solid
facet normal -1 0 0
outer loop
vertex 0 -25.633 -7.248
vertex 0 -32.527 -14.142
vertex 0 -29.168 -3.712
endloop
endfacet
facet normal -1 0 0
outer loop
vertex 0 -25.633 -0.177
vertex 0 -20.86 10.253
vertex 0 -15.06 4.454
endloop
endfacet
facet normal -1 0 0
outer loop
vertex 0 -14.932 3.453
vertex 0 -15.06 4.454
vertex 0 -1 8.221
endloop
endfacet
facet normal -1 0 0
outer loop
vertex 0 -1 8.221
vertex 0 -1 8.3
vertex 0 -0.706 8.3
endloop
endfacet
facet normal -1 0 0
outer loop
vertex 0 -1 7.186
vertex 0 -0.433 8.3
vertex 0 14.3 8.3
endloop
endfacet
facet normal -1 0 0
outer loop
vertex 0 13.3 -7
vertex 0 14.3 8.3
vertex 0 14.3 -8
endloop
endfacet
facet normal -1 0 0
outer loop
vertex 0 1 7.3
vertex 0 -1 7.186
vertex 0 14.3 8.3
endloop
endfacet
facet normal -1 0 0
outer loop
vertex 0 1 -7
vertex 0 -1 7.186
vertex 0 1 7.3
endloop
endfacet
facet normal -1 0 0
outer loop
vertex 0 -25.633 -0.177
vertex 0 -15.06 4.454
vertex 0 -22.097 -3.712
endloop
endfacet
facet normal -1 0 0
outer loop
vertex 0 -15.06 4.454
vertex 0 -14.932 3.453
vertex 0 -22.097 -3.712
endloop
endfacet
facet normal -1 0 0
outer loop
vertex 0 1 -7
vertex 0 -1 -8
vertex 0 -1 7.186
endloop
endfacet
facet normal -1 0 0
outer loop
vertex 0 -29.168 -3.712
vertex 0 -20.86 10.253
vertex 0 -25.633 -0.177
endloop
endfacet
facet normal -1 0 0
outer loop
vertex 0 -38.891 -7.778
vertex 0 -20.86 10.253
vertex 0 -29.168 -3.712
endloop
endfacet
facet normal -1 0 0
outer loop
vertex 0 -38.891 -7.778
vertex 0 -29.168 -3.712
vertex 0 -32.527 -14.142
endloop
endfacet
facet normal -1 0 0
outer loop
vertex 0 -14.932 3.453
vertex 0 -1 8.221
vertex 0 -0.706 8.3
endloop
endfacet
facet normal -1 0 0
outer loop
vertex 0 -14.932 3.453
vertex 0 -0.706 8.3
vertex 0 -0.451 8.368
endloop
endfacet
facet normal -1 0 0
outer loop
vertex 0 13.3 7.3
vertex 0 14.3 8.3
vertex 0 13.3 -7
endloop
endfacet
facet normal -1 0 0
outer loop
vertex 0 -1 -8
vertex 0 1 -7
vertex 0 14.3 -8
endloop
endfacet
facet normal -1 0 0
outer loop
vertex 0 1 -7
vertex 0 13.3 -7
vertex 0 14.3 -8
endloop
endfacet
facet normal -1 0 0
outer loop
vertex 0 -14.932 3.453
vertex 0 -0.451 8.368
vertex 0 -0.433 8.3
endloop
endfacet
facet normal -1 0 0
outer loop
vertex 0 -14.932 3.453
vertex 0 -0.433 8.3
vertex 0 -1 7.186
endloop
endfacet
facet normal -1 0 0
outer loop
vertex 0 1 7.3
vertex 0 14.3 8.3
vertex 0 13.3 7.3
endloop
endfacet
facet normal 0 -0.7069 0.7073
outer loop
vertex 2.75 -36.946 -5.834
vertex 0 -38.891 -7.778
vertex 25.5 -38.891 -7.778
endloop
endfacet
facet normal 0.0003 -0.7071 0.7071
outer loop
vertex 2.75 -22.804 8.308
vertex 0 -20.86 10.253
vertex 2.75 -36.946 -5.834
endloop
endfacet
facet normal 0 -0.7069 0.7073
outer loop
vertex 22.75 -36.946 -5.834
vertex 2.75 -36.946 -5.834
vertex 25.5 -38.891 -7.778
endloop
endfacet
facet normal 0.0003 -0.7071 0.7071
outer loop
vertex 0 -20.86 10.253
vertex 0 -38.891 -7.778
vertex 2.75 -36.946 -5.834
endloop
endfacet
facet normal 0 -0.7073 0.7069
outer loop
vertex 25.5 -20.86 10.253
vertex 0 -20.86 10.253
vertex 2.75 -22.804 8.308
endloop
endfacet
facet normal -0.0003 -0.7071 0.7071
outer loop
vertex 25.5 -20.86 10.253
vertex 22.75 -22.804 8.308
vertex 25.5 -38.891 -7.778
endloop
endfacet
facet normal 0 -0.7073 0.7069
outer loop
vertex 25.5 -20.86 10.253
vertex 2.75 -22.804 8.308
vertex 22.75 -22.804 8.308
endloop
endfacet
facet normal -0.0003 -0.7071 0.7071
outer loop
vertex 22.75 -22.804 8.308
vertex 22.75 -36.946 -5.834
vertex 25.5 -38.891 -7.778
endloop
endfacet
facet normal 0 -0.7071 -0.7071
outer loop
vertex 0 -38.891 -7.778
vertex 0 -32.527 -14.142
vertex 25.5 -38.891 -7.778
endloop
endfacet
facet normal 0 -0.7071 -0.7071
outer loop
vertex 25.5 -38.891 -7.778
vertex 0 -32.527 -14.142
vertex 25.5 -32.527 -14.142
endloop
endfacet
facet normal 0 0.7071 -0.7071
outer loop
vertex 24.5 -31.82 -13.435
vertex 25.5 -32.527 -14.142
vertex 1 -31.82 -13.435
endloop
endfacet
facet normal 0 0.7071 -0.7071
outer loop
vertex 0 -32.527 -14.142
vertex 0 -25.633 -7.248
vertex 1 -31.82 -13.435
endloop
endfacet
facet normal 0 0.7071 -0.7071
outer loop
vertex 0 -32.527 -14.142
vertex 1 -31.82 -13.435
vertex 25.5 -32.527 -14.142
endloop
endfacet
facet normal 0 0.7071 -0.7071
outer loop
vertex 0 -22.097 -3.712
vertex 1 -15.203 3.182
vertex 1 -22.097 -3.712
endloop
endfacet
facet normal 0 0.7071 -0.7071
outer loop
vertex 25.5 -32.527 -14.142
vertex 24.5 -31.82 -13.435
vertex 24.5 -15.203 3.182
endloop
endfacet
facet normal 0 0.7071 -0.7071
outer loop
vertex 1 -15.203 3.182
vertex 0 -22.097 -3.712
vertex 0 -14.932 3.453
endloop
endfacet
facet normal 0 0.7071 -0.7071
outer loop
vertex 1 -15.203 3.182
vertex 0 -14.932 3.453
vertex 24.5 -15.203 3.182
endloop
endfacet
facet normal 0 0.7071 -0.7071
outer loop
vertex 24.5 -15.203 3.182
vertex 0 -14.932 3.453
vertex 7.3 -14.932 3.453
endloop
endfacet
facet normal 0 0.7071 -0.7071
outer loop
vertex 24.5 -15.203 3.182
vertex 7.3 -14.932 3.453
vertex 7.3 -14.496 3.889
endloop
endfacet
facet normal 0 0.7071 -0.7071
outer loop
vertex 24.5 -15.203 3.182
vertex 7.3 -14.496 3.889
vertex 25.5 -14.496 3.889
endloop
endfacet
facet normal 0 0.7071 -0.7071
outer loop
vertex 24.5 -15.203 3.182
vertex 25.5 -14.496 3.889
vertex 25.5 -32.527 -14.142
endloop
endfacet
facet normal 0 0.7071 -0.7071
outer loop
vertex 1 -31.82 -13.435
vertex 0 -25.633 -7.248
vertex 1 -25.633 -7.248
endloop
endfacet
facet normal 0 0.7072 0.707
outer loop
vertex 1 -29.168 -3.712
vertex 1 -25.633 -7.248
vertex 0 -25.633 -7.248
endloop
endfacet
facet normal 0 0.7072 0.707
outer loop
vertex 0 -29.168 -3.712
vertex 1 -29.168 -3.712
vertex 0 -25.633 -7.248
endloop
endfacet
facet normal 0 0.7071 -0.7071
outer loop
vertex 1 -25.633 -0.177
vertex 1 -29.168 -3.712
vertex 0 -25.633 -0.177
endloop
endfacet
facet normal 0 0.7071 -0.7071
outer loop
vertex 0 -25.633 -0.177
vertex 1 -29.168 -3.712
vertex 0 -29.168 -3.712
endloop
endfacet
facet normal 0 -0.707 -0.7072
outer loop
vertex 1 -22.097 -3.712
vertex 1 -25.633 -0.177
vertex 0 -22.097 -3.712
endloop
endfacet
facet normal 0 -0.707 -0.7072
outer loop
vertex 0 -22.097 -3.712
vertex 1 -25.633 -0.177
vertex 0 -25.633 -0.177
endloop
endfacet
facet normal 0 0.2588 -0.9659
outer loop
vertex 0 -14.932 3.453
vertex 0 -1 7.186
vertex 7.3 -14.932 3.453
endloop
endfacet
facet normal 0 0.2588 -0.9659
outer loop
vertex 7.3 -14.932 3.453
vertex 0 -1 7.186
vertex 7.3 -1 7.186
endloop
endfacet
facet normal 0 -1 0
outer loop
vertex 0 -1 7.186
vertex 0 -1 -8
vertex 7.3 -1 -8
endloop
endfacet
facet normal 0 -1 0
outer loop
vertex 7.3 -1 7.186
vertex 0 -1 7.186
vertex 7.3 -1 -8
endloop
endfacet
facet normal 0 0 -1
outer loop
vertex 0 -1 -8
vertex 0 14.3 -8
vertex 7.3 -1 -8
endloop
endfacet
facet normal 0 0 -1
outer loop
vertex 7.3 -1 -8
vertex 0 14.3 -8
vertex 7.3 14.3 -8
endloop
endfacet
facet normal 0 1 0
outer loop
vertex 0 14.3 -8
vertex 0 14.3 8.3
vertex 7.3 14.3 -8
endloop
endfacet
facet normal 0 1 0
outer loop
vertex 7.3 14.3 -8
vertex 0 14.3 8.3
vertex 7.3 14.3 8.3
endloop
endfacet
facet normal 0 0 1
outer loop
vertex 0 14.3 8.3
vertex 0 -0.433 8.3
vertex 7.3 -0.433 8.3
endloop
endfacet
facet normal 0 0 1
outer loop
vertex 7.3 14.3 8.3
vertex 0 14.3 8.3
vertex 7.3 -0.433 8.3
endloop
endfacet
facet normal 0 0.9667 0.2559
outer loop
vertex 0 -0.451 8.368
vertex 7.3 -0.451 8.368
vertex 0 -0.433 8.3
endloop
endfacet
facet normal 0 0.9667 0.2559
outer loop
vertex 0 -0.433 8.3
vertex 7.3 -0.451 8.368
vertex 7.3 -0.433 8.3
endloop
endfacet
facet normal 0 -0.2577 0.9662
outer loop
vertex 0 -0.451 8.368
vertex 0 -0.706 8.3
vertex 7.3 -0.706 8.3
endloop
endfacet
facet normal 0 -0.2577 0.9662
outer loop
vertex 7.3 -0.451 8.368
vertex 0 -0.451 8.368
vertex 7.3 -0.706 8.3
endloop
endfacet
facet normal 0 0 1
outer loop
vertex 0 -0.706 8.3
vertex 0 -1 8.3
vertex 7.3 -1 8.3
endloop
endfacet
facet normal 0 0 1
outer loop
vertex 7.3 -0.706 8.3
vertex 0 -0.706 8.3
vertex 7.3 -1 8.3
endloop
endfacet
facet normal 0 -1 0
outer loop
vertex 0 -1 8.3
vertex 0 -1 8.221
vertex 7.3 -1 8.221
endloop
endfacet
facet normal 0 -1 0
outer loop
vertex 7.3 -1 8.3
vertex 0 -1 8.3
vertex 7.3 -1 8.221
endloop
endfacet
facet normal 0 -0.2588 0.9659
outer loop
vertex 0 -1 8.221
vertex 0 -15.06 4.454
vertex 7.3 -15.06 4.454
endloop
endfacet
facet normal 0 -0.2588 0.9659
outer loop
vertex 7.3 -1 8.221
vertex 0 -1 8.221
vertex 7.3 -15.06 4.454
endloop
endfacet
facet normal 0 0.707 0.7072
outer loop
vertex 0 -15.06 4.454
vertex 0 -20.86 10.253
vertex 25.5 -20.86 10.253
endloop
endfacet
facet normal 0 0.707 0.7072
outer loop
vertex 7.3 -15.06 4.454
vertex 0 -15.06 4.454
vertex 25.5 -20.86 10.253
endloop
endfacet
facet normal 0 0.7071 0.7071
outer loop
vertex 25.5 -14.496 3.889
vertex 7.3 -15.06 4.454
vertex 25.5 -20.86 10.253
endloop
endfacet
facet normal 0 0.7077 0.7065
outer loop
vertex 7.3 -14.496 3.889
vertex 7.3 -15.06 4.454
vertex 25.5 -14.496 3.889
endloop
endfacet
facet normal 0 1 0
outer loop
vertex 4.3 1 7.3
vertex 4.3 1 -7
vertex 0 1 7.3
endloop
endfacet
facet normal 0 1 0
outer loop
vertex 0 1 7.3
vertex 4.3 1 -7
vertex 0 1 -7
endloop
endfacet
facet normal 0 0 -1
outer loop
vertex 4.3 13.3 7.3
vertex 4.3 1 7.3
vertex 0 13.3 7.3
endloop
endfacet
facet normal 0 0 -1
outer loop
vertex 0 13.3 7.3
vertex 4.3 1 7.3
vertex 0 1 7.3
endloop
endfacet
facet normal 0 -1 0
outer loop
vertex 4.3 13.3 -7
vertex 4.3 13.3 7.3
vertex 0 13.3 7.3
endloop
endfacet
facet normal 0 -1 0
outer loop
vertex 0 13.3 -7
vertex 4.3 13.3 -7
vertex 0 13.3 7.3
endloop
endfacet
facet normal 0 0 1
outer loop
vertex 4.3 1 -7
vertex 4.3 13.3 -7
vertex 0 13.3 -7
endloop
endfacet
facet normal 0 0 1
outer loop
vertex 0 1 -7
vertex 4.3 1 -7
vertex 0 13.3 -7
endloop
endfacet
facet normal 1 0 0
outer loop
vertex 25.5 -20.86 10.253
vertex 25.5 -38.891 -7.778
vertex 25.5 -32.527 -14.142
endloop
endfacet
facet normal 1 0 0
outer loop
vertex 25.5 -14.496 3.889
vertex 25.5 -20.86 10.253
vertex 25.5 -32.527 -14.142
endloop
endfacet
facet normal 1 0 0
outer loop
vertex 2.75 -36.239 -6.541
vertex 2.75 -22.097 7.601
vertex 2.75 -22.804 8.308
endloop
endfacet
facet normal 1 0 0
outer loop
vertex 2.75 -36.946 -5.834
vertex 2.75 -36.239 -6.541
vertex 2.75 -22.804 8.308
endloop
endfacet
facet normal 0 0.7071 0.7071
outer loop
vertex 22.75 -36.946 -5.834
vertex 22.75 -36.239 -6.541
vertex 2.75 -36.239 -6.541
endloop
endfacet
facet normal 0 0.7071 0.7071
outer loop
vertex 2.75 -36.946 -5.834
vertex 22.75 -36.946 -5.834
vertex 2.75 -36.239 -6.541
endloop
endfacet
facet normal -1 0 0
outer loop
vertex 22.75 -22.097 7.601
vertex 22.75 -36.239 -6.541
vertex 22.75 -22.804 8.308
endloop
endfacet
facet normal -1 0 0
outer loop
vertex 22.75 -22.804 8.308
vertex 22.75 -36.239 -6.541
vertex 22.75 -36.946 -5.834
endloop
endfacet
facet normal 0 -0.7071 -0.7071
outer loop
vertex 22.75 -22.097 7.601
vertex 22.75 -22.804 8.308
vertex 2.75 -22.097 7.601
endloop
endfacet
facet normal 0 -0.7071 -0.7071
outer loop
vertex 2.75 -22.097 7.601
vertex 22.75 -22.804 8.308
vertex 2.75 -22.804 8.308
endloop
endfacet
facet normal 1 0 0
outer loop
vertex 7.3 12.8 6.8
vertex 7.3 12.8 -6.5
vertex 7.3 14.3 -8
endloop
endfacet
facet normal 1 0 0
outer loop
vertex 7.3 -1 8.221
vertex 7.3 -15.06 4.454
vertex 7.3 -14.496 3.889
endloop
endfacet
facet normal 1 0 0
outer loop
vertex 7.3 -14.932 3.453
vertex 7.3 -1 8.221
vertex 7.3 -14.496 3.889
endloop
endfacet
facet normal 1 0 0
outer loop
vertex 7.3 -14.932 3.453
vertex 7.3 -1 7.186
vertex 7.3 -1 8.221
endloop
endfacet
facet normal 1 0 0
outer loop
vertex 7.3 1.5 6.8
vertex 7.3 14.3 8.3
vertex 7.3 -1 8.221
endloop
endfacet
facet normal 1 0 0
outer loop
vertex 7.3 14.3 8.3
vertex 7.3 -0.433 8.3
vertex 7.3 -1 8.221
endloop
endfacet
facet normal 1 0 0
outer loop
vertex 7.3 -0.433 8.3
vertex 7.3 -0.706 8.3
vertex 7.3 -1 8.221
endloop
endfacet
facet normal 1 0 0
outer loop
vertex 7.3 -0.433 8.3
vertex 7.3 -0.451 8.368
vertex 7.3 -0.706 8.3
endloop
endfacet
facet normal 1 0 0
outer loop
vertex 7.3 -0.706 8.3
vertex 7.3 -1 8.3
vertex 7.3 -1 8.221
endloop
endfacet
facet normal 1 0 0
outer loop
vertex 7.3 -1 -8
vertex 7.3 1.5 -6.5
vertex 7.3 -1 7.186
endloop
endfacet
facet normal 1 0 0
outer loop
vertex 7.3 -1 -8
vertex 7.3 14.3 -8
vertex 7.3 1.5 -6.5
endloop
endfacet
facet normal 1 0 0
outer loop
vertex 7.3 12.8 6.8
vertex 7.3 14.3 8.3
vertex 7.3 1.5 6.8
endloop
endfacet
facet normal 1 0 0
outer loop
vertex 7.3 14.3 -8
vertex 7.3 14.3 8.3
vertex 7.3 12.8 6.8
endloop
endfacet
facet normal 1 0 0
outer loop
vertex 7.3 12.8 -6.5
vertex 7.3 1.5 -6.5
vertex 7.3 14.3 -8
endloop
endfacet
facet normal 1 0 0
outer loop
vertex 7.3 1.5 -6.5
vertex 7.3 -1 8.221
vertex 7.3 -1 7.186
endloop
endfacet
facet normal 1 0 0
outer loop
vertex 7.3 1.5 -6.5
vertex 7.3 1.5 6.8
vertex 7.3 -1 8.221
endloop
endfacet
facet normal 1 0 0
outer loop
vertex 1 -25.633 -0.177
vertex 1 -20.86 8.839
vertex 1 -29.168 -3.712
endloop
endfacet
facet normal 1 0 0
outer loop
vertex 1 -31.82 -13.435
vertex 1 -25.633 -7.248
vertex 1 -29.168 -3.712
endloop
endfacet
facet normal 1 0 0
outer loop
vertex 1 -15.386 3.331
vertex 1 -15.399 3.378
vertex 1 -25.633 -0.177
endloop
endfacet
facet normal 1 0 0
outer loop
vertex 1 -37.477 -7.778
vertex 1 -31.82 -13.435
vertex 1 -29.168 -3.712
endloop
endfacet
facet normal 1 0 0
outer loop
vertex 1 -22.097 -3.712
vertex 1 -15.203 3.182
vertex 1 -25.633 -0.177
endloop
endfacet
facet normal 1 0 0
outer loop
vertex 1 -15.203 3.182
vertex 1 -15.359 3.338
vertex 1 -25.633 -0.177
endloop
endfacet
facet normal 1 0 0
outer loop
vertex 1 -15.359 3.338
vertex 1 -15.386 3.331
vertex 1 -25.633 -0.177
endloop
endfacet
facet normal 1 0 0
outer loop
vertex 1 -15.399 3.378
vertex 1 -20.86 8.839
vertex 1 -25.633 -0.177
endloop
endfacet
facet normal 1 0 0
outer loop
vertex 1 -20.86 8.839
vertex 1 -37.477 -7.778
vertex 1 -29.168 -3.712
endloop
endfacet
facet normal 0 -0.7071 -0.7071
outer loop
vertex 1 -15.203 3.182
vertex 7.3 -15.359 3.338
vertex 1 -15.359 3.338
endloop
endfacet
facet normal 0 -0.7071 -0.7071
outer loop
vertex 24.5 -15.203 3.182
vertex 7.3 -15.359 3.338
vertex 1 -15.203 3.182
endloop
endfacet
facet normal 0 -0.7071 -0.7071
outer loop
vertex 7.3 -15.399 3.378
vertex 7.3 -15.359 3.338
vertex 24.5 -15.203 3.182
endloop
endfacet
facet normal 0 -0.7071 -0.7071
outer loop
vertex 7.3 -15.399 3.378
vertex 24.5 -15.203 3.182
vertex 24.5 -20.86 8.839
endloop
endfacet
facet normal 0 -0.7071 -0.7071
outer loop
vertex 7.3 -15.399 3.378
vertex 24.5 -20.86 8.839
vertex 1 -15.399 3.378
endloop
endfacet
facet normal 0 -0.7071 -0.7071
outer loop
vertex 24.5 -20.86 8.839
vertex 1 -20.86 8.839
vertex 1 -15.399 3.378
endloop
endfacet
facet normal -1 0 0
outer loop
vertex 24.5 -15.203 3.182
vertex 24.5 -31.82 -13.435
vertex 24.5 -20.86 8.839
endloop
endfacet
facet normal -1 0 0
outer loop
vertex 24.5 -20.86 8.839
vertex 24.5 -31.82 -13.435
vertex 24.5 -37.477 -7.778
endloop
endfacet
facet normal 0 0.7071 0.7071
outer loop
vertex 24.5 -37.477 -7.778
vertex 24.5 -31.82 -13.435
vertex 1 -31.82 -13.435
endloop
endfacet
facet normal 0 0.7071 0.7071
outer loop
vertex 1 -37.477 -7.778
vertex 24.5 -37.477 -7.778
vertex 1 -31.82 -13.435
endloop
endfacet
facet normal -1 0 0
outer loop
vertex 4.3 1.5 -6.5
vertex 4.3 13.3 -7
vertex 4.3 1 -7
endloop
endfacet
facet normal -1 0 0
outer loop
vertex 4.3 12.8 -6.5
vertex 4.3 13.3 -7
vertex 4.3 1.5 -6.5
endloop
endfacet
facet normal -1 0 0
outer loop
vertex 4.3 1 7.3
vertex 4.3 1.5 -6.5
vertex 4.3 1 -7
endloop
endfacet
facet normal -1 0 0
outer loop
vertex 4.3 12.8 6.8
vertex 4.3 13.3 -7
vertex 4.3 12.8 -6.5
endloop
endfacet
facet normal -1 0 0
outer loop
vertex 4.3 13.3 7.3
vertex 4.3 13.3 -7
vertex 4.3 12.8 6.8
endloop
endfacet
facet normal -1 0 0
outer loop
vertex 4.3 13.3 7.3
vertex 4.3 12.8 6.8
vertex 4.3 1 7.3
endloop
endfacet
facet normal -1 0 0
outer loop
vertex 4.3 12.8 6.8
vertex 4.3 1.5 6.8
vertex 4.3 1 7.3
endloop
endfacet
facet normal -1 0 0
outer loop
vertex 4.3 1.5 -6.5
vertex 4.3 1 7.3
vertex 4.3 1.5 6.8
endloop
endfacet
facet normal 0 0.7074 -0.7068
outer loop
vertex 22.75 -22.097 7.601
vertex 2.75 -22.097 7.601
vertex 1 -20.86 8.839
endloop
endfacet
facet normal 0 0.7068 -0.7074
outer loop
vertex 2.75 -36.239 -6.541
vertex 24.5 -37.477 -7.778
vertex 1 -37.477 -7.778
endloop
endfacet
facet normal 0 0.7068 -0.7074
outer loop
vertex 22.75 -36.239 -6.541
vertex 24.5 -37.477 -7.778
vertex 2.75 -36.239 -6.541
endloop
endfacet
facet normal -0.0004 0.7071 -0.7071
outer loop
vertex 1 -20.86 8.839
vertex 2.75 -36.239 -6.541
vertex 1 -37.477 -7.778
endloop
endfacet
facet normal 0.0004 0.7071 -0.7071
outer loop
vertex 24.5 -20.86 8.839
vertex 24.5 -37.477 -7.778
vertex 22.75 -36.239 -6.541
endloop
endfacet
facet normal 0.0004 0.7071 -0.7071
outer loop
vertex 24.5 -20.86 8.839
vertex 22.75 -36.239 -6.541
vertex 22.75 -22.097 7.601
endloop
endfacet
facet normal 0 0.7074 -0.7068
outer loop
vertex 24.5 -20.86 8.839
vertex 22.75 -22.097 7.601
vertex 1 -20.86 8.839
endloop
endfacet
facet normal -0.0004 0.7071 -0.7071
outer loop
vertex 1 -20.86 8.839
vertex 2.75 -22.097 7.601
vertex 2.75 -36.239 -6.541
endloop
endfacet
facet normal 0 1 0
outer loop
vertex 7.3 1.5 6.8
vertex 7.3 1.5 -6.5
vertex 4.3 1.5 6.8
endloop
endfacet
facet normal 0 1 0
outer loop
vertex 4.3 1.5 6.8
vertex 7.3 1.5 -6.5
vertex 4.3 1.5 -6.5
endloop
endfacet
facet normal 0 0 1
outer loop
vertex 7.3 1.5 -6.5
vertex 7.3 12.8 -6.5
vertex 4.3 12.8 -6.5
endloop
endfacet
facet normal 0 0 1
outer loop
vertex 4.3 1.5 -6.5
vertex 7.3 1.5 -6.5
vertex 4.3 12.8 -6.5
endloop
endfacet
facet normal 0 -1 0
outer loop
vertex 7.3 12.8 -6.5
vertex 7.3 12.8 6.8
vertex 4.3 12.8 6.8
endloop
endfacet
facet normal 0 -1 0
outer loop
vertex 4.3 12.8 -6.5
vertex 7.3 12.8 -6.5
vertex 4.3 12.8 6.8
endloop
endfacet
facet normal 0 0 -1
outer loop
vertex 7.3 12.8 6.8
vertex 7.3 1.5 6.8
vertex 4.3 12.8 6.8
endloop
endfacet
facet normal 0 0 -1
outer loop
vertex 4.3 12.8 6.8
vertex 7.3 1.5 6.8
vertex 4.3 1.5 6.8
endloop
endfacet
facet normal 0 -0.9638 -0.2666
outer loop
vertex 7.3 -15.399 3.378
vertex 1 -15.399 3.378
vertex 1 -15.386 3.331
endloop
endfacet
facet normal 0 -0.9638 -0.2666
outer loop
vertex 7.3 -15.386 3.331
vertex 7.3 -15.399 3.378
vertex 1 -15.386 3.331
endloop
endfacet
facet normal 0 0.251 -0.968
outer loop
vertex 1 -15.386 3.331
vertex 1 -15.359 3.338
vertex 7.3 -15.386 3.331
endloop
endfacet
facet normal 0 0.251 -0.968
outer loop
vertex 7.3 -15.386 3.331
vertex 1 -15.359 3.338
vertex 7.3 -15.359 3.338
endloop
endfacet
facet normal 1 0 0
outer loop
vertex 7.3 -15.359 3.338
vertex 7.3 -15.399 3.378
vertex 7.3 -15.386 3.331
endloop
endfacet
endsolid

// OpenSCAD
thickness = 2.5;
thicknessWC = 1;
length = 2.5;
lengthTop = 6.75;
gapWidth = 4.2;
pi = 3.141592653589793;
webcamSide = 23.5;
webcamSideCut = 20;
webcamHeight = 8;
barOffset = 15;
barLength = 60;
barDrop = 15;
wireHolderWidth = 2.75;
wireGapWidth = 5;
// Good w and w/o band
glassTouchpadHeight = 16.8;
glassTouchpadWidth = 7.55;


// Make webcam holder
rotate([45, 0, 0]) {
translate([0, -33, 13]) {
difference() {
cube([webcamSide + thicknessWC * 2, webcamSide + thicknessWC * 2, thicknessWC + webcamHeight]);
translate([thicknessWC, thicknessWC, -thicknessWC]) cube([webcamSide, webcamSide, webcamHeight + thicknessWC]);
translate([0, thicknessWC/2 + webcamSide / 2 - wireGapWidth / 2, -thicknessWC]) cube([webcamSide + thicknessWC, wireGapWidth, webcamHeight * 3 / 4]);
translate([thicknessWC + (webcamSide - webcamSideCut) / 2, thicknessWC + (webcamSide - webcamSideCut) / 2, webcamHeight]) cube([webcamSideCut, webcamSideCut, thicknessWC]);
}
}
}
rotate([15, 0, 0]) {
translate([0, -14, 7.20]) {
translate([0, 0, 0]) cube([prismWidth, 15.73, 0 + thickness ]);
}}



thickness = 1;
fudge = .3;
prismHeightGlass = 12 + fudge;
prismHeight = 12 + fudge;
prismWidth = 7 + fudge;
prismDepth = 14 + fudge;
prismDepthGlass = 14 + fudge;
mirrorSide = 25.7;
mirrorSideEdge = 4;
mirrorDepth = 2.5;
translate([0, 0, -8]) {
difference() {
translate([0, -thickness, 0]) cube([prismWidth, prismHeight + thickness * 3, prismDepth + thickness * 2]);
translate([0, thickness, thickness]) cube([prismWidth - thickness * 3, prismHeight, prismDepth]);
translate([0, thickness + thickness / 2, thickness + thickness / 2]) cube([prismWidth, prismHeight - thickness, prismDepth - thickness]);

}
}
